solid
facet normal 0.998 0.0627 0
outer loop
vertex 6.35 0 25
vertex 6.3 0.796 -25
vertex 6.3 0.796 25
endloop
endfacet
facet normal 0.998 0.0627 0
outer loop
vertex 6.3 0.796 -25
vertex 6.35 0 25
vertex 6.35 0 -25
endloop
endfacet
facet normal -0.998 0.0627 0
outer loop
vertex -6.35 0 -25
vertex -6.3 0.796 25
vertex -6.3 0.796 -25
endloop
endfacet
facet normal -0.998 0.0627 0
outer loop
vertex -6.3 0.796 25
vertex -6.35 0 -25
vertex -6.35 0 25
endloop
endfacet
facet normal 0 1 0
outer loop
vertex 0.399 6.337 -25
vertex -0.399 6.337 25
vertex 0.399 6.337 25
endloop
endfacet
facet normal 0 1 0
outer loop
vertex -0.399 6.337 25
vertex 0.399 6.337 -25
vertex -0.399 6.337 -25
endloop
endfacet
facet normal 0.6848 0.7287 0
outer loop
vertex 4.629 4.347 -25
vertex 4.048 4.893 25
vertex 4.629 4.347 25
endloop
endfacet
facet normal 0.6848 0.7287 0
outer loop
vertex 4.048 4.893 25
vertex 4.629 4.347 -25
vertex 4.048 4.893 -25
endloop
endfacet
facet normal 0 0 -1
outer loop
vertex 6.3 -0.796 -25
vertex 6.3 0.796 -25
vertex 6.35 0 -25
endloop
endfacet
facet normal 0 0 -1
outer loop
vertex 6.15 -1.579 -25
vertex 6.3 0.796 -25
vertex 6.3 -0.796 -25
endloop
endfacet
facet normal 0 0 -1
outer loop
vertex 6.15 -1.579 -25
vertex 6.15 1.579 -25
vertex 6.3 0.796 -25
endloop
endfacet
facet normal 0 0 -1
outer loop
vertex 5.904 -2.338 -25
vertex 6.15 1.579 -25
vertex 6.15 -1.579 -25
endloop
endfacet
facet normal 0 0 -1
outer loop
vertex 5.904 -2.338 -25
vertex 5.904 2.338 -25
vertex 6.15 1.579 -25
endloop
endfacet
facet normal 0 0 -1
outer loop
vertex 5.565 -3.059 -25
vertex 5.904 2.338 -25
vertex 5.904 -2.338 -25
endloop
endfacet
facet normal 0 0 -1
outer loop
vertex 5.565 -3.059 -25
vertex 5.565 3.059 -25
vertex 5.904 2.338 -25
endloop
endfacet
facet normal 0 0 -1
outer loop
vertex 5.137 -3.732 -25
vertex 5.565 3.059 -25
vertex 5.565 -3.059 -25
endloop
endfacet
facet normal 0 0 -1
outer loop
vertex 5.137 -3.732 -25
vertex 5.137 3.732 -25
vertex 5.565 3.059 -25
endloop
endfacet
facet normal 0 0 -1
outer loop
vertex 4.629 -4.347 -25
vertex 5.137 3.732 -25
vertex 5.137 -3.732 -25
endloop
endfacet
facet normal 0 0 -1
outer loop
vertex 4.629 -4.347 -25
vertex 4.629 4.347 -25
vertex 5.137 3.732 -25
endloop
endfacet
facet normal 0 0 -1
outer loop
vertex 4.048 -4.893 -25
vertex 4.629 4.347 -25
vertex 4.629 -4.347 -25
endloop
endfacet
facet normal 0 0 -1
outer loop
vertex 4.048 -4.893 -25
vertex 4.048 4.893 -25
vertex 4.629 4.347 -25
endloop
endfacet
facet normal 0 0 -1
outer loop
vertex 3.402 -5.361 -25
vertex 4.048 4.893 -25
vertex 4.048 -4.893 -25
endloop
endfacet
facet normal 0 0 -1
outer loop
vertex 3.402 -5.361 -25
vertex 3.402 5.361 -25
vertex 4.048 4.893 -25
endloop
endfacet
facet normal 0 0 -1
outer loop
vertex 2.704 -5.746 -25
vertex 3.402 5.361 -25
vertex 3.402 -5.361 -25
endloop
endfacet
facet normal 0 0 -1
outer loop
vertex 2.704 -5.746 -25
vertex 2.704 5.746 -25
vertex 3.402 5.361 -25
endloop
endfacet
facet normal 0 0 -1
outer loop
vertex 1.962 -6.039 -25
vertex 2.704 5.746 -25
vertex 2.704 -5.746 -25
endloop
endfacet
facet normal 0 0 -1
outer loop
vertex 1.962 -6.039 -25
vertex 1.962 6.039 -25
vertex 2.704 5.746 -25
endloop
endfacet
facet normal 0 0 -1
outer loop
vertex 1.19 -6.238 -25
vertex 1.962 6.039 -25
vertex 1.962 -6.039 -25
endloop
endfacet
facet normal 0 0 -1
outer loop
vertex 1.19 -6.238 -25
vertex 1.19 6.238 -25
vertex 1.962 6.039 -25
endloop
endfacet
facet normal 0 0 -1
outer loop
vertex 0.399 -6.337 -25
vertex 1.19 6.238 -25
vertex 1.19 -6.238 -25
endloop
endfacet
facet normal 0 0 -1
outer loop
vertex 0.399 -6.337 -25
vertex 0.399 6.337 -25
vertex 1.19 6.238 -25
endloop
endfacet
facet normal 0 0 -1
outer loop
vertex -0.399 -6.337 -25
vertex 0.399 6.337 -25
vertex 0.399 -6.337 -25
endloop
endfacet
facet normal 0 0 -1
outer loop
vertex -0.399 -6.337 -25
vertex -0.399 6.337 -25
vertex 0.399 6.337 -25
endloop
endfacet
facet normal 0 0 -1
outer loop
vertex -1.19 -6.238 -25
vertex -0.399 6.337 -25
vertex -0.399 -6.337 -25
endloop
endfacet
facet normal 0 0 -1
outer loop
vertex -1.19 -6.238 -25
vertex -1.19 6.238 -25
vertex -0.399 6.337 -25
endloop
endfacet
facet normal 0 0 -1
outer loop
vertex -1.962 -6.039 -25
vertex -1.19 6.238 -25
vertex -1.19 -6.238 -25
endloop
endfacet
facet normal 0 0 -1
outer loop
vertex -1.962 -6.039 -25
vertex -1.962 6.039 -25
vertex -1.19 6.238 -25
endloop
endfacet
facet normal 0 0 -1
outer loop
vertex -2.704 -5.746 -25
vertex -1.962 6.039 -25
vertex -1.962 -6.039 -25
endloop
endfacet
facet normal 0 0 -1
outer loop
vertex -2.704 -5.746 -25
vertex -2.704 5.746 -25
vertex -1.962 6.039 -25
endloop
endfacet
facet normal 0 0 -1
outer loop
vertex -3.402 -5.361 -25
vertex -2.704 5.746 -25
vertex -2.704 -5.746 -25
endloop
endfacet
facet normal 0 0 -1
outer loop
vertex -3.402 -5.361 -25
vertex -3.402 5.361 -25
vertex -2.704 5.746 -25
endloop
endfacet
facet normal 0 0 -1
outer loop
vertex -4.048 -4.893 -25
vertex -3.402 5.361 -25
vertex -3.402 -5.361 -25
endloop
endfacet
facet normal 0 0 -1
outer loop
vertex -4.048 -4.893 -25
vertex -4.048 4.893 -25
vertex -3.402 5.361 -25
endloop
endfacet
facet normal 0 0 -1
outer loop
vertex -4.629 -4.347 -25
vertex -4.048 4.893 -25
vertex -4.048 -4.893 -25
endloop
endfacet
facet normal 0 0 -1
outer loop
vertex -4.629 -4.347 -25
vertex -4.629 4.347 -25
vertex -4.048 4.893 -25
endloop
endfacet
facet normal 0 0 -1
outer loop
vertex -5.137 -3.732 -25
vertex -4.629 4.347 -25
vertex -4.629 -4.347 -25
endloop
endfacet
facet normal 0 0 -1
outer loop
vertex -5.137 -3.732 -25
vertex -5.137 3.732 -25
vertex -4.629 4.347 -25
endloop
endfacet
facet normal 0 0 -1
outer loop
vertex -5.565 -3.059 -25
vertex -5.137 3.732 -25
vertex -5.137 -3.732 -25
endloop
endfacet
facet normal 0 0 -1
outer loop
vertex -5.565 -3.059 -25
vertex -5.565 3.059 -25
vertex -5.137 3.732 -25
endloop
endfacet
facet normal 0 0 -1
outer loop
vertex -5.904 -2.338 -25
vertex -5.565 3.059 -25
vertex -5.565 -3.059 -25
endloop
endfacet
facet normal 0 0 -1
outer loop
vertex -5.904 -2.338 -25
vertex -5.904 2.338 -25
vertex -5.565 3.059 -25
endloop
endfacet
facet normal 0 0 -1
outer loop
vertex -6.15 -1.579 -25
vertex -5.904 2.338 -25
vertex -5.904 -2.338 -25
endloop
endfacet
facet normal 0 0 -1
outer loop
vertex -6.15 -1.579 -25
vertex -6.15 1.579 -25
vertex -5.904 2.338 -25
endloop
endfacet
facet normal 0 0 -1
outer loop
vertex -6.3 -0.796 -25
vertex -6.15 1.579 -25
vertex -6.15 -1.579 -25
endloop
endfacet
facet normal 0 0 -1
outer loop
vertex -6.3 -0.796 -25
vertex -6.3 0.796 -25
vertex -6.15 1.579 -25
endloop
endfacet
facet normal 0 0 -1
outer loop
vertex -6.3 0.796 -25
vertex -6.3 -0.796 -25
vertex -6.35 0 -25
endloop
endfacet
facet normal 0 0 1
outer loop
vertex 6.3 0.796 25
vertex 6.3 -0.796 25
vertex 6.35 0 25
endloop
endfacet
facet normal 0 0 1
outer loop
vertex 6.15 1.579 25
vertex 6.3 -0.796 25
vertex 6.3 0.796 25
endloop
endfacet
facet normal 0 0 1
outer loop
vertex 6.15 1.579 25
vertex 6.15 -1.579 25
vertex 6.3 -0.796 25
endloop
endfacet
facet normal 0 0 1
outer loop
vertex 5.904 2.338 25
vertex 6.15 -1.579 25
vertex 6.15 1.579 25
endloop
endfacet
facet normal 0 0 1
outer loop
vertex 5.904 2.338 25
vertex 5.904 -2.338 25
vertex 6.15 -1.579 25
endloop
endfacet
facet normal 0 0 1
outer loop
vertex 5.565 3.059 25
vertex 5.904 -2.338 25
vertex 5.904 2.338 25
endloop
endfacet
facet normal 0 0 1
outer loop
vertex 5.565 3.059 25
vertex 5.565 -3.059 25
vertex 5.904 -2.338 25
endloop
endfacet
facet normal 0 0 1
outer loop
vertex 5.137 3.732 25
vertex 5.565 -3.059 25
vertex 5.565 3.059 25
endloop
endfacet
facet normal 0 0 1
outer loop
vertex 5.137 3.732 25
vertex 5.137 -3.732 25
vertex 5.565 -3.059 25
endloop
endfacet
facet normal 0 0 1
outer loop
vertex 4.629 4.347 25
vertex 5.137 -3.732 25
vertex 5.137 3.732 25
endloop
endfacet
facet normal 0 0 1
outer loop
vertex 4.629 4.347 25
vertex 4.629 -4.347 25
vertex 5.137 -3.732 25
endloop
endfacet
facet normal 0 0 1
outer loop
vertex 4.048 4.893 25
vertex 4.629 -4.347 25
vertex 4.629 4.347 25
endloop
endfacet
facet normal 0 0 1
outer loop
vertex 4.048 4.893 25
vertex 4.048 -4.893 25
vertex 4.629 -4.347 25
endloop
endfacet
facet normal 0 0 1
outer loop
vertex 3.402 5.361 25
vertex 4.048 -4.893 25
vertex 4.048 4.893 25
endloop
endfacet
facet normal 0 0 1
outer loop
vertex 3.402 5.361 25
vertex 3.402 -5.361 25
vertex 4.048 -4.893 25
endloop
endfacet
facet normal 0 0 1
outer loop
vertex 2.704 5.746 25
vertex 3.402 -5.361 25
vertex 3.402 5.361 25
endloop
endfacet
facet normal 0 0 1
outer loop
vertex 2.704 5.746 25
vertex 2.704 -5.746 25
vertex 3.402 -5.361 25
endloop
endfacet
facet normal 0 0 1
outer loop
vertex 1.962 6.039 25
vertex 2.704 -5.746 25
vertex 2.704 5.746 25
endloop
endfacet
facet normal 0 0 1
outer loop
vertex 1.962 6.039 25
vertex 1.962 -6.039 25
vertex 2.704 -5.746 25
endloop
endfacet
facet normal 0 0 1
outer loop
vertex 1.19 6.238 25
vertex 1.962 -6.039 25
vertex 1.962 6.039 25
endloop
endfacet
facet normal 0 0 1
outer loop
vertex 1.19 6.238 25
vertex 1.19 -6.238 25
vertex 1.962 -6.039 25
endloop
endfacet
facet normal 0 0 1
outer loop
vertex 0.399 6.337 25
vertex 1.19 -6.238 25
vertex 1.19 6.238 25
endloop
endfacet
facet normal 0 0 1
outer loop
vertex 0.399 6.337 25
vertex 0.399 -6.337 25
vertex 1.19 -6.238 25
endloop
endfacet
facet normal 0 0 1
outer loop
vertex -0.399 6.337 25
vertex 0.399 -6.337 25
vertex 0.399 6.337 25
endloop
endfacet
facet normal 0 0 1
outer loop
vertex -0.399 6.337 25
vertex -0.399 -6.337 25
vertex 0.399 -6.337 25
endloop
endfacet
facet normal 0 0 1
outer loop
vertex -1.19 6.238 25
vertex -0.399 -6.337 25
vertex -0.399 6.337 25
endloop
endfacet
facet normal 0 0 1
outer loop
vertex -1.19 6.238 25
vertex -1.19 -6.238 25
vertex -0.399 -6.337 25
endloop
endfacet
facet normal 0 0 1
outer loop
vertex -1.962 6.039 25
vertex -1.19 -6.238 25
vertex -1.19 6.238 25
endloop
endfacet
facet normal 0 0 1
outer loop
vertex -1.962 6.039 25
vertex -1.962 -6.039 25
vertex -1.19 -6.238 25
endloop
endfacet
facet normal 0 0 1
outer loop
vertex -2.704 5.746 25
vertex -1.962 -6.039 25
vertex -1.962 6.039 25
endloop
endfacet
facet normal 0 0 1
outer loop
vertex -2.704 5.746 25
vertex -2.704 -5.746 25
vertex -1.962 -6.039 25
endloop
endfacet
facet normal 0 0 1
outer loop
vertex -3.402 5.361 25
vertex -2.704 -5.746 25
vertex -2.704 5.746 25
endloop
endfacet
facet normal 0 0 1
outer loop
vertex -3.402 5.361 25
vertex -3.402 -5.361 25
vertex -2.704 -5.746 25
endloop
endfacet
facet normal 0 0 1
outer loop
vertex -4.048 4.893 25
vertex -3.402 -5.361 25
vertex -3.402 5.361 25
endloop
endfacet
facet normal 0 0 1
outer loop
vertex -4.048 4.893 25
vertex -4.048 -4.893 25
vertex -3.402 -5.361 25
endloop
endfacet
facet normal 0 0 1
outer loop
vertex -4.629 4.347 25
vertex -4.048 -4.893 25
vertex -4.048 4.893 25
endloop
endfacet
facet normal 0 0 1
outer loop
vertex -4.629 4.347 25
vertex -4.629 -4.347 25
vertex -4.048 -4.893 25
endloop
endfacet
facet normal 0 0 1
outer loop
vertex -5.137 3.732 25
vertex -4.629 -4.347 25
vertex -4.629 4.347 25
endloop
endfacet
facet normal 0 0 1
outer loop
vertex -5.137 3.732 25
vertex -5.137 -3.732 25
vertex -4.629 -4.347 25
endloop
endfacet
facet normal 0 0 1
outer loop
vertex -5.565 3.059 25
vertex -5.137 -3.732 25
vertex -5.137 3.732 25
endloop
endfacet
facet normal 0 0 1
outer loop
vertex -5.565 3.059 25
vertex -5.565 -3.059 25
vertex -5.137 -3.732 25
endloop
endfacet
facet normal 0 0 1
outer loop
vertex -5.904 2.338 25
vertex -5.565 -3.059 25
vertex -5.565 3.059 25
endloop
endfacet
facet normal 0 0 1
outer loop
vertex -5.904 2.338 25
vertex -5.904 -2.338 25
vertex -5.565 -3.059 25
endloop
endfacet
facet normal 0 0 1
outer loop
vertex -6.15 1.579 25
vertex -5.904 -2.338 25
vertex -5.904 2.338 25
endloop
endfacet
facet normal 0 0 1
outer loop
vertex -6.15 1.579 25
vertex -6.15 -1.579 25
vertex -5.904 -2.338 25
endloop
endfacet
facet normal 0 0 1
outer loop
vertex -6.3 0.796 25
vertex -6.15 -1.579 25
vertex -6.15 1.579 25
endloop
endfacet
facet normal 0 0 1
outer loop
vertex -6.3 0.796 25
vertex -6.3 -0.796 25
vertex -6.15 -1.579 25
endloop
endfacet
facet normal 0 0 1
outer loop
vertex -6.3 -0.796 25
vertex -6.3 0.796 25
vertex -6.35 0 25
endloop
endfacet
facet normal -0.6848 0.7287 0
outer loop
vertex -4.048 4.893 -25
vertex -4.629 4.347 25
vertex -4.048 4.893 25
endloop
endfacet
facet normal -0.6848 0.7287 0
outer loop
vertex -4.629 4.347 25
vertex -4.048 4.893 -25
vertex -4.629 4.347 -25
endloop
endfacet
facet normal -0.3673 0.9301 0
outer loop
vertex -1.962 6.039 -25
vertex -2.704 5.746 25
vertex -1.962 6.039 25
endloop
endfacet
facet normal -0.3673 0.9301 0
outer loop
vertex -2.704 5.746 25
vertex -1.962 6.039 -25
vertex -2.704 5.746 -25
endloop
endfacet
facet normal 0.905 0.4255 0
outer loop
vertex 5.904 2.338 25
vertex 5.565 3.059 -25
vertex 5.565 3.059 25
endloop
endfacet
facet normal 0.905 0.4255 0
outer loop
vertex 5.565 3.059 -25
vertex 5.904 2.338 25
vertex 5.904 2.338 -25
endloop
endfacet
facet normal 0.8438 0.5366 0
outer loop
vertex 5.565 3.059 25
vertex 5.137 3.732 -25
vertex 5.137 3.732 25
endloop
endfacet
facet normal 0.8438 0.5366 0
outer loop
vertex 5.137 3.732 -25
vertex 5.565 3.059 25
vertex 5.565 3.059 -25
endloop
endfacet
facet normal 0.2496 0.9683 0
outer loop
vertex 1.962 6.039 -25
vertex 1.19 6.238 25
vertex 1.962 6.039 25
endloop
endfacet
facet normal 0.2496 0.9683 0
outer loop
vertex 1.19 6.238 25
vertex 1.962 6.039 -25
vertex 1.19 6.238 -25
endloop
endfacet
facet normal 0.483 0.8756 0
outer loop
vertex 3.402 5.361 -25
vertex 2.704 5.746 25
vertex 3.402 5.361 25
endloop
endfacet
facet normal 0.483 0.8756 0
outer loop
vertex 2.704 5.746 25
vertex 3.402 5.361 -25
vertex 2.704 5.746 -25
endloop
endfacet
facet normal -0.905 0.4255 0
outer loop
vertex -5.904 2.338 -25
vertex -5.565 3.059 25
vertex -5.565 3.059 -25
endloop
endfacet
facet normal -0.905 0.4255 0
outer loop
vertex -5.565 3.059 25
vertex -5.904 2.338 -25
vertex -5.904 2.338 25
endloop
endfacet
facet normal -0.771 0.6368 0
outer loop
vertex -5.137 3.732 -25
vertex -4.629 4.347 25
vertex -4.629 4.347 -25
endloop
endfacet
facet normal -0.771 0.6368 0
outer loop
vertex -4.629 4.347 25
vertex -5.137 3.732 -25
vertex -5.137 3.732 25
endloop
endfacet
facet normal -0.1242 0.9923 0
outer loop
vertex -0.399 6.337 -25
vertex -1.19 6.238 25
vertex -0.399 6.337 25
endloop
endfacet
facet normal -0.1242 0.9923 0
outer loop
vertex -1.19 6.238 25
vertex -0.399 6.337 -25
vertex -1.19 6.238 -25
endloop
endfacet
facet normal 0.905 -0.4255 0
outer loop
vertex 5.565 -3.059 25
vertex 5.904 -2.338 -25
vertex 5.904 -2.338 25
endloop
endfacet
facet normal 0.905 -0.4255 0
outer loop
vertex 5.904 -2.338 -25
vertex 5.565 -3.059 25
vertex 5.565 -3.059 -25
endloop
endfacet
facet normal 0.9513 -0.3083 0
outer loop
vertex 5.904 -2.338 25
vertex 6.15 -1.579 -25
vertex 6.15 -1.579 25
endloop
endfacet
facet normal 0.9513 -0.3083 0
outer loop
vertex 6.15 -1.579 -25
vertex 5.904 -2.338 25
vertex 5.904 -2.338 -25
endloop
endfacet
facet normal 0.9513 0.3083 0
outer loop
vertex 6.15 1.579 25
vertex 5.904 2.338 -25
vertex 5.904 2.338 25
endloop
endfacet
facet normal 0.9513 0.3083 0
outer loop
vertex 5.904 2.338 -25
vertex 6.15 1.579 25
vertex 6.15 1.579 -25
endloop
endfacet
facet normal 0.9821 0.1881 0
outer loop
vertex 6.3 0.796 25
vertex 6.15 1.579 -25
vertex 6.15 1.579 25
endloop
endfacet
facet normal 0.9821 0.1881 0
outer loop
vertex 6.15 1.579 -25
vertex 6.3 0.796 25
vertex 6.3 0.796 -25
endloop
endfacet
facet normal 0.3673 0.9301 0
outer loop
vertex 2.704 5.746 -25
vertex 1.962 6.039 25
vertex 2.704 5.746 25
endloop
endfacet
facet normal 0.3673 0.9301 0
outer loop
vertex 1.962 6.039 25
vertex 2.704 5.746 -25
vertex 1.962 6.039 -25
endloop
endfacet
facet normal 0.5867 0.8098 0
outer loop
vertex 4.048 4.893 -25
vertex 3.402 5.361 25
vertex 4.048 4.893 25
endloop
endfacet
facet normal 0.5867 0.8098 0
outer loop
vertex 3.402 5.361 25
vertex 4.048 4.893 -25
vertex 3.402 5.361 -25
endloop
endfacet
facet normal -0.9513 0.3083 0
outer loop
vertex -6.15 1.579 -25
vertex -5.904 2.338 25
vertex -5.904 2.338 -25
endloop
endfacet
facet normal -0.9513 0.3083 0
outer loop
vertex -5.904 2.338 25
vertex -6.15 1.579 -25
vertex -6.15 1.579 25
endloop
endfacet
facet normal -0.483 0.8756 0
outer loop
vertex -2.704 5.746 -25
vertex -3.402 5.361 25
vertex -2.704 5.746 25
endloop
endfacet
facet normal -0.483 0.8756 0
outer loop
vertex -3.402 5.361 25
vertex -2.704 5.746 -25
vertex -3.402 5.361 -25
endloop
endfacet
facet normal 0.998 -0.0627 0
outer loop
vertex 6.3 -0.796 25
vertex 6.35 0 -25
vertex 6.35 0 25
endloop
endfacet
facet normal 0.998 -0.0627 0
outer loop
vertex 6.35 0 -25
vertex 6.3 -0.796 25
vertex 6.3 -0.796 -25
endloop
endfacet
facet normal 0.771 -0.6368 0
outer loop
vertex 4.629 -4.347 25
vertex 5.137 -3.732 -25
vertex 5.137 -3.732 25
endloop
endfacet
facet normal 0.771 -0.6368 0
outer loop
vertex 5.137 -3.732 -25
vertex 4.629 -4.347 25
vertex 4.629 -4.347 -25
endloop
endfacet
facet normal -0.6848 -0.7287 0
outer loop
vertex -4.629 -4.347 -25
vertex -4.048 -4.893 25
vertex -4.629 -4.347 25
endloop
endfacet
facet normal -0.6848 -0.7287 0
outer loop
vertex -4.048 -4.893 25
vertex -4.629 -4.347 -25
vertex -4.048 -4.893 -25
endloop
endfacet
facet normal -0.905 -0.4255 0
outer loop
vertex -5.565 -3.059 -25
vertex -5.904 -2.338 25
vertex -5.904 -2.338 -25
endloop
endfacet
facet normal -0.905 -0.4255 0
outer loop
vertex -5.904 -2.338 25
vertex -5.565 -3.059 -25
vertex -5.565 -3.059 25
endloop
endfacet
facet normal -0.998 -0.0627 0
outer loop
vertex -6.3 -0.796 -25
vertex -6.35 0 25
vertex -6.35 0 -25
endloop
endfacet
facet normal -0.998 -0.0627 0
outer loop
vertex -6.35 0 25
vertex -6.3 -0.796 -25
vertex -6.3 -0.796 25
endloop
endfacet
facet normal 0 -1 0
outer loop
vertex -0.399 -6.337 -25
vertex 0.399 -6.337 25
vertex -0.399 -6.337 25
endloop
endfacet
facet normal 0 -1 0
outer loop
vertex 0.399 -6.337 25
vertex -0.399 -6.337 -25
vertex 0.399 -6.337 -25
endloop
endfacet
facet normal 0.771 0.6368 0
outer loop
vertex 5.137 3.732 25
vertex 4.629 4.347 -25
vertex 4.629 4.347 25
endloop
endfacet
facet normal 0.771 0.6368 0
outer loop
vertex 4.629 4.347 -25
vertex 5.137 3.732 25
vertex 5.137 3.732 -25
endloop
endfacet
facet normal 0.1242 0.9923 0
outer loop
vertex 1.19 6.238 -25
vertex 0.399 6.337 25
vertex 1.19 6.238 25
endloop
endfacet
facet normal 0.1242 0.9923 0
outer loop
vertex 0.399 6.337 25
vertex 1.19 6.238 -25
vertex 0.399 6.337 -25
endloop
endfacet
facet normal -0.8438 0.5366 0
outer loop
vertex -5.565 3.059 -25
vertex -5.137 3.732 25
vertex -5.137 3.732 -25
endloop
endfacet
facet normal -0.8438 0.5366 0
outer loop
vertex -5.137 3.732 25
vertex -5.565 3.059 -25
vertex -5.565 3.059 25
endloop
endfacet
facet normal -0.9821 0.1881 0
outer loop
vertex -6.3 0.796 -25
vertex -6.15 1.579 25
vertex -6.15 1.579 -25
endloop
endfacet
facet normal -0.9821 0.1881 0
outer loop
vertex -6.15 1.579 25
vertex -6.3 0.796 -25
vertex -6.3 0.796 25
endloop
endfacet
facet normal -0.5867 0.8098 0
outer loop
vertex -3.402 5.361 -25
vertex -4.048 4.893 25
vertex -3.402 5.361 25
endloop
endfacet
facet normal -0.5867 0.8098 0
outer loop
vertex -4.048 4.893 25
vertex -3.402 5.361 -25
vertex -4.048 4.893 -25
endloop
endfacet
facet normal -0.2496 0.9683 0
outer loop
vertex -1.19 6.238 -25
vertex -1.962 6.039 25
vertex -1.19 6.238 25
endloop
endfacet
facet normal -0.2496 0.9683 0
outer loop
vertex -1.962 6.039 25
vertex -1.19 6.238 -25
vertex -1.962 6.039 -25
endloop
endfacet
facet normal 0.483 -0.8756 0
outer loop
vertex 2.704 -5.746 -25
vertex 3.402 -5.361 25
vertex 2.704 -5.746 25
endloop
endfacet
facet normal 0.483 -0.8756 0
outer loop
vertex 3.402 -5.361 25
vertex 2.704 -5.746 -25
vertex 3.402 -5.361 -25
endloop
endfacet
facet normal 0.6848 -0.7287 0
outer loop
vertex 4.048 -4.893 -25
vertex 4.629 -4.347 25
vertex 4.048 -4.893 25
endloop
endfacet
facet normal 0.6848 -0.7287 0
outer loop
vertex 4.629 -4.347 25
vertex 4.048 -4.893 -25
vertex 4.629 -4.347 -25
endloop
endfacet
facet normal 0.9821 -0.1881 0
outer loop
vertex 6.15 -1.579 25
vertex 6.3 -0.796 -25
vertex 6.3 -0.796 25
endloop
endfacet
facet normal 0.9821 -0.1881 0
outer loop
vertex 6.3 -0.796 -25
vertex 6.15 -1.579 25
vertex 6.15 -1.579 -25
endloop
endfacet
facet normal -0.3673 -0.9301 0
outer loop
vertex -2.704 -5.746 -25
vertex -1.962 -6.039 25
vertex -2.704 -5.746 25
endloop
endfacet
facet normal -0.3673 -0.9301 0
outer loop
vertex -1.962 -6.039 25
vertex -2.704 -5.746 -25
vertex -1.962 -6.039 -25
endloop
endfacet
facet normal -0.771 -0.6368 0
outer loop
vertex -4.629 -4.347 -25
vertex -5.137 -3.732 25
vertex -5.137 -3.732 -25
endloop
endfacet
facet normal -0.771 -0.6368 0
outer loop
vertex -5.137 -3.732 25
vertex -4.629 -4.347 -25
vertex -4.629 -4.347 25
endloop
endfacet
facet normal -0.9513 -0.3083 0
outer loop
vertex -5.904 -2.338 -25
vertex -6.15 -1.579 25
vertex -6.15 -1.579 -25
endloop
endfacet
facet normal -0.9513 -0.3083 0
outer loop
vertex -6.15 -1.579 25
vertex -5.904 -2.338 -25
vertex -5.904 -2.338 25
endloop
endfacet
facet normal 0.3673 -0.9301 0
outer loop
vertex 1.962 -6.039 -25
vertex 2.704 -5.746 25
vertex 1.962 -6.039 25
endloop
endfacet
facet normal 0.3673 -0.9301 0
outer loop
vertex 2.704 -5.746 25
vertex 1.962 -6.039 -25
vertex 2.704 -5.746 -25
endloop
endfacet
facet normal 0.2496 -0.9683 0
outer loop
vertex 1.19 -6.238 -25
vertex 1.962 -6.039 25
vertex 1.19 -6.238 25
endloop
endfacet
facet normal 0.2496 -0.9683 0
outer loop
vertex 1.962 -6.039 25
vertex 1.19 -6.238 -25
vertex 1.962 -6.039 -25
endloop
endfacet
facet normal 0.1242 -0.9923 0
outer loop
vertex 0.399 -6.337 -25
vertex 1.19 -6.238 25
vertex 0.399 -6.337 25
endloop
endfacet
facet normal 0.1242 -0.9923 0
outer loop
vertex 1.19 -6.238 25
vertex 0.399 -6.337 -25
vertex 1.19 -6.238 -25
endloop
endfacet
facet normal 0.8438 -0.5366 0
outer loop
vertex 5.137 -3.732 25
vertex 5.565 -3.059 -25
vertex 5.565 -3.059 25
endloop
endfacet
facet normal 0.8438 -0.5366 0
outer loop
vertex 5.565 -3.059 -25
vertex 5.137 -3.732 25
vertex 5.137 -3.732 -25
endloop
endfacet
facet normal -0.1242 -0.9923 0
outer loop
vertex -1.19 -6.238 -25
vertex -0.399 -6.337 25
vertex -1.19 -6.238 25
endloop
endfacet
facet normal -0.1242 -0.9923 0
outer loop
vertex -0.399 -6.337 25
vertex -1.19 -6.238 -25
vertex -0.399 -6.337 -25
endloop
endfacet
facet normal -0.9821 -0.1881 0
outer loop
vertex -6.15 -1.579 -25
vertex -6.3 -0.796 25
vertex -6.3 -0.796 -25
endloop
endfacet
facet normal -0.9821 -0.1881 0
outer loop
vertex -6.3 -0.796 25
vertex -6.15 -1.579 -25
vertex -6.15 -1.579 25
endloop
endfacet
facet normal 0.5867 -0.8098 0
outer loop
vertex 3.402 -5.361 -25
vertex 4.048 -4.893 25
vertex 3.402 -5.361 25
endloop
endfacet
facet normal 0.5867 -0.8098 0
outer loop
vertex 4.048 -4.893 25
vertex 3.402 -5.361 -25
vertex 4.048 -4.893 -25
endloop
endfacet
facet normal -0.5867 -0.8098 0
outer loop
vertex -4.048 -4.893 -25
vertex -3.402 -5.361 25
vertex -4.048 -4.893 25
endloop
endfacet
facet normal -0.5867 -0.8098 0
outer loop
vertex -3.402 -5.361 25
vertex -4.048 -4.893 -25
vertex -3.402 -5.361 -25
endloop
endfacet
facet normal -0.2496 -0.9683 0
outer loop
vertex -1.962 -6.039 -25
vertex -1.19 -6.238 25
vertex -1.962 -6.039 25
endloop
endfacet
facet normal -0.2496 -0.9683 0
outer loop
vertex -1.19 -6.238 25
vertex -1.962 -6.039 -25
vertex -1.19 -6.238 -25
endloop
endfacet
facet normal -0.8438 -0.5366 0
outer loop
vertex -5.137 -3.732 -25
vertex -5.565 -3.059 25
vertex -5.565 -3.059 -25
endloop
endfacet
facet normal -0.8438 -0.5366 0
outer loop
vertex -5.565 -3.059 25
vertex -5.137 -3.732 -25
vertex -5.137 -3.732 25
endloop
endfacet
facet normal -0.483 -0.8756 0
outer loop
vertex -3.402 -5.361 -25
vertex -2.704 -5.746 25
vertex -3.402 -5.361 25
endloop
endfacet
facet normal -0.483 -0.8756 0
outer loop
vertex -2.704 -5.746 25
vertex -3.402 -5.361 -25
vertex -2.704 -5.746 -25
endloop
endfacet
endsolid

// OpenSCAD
$fn = 50;


difference() {
	union() {
		translate(v = [0, 0, -25.0000000000]) {
			cylinder(h = 50, r = 6.3500000000);
		}
	}
	union() {
		translate(v = [0, 0, -100.0000000000]) {
			cylinder(h = 200, r = 0);
		}
	}
}
